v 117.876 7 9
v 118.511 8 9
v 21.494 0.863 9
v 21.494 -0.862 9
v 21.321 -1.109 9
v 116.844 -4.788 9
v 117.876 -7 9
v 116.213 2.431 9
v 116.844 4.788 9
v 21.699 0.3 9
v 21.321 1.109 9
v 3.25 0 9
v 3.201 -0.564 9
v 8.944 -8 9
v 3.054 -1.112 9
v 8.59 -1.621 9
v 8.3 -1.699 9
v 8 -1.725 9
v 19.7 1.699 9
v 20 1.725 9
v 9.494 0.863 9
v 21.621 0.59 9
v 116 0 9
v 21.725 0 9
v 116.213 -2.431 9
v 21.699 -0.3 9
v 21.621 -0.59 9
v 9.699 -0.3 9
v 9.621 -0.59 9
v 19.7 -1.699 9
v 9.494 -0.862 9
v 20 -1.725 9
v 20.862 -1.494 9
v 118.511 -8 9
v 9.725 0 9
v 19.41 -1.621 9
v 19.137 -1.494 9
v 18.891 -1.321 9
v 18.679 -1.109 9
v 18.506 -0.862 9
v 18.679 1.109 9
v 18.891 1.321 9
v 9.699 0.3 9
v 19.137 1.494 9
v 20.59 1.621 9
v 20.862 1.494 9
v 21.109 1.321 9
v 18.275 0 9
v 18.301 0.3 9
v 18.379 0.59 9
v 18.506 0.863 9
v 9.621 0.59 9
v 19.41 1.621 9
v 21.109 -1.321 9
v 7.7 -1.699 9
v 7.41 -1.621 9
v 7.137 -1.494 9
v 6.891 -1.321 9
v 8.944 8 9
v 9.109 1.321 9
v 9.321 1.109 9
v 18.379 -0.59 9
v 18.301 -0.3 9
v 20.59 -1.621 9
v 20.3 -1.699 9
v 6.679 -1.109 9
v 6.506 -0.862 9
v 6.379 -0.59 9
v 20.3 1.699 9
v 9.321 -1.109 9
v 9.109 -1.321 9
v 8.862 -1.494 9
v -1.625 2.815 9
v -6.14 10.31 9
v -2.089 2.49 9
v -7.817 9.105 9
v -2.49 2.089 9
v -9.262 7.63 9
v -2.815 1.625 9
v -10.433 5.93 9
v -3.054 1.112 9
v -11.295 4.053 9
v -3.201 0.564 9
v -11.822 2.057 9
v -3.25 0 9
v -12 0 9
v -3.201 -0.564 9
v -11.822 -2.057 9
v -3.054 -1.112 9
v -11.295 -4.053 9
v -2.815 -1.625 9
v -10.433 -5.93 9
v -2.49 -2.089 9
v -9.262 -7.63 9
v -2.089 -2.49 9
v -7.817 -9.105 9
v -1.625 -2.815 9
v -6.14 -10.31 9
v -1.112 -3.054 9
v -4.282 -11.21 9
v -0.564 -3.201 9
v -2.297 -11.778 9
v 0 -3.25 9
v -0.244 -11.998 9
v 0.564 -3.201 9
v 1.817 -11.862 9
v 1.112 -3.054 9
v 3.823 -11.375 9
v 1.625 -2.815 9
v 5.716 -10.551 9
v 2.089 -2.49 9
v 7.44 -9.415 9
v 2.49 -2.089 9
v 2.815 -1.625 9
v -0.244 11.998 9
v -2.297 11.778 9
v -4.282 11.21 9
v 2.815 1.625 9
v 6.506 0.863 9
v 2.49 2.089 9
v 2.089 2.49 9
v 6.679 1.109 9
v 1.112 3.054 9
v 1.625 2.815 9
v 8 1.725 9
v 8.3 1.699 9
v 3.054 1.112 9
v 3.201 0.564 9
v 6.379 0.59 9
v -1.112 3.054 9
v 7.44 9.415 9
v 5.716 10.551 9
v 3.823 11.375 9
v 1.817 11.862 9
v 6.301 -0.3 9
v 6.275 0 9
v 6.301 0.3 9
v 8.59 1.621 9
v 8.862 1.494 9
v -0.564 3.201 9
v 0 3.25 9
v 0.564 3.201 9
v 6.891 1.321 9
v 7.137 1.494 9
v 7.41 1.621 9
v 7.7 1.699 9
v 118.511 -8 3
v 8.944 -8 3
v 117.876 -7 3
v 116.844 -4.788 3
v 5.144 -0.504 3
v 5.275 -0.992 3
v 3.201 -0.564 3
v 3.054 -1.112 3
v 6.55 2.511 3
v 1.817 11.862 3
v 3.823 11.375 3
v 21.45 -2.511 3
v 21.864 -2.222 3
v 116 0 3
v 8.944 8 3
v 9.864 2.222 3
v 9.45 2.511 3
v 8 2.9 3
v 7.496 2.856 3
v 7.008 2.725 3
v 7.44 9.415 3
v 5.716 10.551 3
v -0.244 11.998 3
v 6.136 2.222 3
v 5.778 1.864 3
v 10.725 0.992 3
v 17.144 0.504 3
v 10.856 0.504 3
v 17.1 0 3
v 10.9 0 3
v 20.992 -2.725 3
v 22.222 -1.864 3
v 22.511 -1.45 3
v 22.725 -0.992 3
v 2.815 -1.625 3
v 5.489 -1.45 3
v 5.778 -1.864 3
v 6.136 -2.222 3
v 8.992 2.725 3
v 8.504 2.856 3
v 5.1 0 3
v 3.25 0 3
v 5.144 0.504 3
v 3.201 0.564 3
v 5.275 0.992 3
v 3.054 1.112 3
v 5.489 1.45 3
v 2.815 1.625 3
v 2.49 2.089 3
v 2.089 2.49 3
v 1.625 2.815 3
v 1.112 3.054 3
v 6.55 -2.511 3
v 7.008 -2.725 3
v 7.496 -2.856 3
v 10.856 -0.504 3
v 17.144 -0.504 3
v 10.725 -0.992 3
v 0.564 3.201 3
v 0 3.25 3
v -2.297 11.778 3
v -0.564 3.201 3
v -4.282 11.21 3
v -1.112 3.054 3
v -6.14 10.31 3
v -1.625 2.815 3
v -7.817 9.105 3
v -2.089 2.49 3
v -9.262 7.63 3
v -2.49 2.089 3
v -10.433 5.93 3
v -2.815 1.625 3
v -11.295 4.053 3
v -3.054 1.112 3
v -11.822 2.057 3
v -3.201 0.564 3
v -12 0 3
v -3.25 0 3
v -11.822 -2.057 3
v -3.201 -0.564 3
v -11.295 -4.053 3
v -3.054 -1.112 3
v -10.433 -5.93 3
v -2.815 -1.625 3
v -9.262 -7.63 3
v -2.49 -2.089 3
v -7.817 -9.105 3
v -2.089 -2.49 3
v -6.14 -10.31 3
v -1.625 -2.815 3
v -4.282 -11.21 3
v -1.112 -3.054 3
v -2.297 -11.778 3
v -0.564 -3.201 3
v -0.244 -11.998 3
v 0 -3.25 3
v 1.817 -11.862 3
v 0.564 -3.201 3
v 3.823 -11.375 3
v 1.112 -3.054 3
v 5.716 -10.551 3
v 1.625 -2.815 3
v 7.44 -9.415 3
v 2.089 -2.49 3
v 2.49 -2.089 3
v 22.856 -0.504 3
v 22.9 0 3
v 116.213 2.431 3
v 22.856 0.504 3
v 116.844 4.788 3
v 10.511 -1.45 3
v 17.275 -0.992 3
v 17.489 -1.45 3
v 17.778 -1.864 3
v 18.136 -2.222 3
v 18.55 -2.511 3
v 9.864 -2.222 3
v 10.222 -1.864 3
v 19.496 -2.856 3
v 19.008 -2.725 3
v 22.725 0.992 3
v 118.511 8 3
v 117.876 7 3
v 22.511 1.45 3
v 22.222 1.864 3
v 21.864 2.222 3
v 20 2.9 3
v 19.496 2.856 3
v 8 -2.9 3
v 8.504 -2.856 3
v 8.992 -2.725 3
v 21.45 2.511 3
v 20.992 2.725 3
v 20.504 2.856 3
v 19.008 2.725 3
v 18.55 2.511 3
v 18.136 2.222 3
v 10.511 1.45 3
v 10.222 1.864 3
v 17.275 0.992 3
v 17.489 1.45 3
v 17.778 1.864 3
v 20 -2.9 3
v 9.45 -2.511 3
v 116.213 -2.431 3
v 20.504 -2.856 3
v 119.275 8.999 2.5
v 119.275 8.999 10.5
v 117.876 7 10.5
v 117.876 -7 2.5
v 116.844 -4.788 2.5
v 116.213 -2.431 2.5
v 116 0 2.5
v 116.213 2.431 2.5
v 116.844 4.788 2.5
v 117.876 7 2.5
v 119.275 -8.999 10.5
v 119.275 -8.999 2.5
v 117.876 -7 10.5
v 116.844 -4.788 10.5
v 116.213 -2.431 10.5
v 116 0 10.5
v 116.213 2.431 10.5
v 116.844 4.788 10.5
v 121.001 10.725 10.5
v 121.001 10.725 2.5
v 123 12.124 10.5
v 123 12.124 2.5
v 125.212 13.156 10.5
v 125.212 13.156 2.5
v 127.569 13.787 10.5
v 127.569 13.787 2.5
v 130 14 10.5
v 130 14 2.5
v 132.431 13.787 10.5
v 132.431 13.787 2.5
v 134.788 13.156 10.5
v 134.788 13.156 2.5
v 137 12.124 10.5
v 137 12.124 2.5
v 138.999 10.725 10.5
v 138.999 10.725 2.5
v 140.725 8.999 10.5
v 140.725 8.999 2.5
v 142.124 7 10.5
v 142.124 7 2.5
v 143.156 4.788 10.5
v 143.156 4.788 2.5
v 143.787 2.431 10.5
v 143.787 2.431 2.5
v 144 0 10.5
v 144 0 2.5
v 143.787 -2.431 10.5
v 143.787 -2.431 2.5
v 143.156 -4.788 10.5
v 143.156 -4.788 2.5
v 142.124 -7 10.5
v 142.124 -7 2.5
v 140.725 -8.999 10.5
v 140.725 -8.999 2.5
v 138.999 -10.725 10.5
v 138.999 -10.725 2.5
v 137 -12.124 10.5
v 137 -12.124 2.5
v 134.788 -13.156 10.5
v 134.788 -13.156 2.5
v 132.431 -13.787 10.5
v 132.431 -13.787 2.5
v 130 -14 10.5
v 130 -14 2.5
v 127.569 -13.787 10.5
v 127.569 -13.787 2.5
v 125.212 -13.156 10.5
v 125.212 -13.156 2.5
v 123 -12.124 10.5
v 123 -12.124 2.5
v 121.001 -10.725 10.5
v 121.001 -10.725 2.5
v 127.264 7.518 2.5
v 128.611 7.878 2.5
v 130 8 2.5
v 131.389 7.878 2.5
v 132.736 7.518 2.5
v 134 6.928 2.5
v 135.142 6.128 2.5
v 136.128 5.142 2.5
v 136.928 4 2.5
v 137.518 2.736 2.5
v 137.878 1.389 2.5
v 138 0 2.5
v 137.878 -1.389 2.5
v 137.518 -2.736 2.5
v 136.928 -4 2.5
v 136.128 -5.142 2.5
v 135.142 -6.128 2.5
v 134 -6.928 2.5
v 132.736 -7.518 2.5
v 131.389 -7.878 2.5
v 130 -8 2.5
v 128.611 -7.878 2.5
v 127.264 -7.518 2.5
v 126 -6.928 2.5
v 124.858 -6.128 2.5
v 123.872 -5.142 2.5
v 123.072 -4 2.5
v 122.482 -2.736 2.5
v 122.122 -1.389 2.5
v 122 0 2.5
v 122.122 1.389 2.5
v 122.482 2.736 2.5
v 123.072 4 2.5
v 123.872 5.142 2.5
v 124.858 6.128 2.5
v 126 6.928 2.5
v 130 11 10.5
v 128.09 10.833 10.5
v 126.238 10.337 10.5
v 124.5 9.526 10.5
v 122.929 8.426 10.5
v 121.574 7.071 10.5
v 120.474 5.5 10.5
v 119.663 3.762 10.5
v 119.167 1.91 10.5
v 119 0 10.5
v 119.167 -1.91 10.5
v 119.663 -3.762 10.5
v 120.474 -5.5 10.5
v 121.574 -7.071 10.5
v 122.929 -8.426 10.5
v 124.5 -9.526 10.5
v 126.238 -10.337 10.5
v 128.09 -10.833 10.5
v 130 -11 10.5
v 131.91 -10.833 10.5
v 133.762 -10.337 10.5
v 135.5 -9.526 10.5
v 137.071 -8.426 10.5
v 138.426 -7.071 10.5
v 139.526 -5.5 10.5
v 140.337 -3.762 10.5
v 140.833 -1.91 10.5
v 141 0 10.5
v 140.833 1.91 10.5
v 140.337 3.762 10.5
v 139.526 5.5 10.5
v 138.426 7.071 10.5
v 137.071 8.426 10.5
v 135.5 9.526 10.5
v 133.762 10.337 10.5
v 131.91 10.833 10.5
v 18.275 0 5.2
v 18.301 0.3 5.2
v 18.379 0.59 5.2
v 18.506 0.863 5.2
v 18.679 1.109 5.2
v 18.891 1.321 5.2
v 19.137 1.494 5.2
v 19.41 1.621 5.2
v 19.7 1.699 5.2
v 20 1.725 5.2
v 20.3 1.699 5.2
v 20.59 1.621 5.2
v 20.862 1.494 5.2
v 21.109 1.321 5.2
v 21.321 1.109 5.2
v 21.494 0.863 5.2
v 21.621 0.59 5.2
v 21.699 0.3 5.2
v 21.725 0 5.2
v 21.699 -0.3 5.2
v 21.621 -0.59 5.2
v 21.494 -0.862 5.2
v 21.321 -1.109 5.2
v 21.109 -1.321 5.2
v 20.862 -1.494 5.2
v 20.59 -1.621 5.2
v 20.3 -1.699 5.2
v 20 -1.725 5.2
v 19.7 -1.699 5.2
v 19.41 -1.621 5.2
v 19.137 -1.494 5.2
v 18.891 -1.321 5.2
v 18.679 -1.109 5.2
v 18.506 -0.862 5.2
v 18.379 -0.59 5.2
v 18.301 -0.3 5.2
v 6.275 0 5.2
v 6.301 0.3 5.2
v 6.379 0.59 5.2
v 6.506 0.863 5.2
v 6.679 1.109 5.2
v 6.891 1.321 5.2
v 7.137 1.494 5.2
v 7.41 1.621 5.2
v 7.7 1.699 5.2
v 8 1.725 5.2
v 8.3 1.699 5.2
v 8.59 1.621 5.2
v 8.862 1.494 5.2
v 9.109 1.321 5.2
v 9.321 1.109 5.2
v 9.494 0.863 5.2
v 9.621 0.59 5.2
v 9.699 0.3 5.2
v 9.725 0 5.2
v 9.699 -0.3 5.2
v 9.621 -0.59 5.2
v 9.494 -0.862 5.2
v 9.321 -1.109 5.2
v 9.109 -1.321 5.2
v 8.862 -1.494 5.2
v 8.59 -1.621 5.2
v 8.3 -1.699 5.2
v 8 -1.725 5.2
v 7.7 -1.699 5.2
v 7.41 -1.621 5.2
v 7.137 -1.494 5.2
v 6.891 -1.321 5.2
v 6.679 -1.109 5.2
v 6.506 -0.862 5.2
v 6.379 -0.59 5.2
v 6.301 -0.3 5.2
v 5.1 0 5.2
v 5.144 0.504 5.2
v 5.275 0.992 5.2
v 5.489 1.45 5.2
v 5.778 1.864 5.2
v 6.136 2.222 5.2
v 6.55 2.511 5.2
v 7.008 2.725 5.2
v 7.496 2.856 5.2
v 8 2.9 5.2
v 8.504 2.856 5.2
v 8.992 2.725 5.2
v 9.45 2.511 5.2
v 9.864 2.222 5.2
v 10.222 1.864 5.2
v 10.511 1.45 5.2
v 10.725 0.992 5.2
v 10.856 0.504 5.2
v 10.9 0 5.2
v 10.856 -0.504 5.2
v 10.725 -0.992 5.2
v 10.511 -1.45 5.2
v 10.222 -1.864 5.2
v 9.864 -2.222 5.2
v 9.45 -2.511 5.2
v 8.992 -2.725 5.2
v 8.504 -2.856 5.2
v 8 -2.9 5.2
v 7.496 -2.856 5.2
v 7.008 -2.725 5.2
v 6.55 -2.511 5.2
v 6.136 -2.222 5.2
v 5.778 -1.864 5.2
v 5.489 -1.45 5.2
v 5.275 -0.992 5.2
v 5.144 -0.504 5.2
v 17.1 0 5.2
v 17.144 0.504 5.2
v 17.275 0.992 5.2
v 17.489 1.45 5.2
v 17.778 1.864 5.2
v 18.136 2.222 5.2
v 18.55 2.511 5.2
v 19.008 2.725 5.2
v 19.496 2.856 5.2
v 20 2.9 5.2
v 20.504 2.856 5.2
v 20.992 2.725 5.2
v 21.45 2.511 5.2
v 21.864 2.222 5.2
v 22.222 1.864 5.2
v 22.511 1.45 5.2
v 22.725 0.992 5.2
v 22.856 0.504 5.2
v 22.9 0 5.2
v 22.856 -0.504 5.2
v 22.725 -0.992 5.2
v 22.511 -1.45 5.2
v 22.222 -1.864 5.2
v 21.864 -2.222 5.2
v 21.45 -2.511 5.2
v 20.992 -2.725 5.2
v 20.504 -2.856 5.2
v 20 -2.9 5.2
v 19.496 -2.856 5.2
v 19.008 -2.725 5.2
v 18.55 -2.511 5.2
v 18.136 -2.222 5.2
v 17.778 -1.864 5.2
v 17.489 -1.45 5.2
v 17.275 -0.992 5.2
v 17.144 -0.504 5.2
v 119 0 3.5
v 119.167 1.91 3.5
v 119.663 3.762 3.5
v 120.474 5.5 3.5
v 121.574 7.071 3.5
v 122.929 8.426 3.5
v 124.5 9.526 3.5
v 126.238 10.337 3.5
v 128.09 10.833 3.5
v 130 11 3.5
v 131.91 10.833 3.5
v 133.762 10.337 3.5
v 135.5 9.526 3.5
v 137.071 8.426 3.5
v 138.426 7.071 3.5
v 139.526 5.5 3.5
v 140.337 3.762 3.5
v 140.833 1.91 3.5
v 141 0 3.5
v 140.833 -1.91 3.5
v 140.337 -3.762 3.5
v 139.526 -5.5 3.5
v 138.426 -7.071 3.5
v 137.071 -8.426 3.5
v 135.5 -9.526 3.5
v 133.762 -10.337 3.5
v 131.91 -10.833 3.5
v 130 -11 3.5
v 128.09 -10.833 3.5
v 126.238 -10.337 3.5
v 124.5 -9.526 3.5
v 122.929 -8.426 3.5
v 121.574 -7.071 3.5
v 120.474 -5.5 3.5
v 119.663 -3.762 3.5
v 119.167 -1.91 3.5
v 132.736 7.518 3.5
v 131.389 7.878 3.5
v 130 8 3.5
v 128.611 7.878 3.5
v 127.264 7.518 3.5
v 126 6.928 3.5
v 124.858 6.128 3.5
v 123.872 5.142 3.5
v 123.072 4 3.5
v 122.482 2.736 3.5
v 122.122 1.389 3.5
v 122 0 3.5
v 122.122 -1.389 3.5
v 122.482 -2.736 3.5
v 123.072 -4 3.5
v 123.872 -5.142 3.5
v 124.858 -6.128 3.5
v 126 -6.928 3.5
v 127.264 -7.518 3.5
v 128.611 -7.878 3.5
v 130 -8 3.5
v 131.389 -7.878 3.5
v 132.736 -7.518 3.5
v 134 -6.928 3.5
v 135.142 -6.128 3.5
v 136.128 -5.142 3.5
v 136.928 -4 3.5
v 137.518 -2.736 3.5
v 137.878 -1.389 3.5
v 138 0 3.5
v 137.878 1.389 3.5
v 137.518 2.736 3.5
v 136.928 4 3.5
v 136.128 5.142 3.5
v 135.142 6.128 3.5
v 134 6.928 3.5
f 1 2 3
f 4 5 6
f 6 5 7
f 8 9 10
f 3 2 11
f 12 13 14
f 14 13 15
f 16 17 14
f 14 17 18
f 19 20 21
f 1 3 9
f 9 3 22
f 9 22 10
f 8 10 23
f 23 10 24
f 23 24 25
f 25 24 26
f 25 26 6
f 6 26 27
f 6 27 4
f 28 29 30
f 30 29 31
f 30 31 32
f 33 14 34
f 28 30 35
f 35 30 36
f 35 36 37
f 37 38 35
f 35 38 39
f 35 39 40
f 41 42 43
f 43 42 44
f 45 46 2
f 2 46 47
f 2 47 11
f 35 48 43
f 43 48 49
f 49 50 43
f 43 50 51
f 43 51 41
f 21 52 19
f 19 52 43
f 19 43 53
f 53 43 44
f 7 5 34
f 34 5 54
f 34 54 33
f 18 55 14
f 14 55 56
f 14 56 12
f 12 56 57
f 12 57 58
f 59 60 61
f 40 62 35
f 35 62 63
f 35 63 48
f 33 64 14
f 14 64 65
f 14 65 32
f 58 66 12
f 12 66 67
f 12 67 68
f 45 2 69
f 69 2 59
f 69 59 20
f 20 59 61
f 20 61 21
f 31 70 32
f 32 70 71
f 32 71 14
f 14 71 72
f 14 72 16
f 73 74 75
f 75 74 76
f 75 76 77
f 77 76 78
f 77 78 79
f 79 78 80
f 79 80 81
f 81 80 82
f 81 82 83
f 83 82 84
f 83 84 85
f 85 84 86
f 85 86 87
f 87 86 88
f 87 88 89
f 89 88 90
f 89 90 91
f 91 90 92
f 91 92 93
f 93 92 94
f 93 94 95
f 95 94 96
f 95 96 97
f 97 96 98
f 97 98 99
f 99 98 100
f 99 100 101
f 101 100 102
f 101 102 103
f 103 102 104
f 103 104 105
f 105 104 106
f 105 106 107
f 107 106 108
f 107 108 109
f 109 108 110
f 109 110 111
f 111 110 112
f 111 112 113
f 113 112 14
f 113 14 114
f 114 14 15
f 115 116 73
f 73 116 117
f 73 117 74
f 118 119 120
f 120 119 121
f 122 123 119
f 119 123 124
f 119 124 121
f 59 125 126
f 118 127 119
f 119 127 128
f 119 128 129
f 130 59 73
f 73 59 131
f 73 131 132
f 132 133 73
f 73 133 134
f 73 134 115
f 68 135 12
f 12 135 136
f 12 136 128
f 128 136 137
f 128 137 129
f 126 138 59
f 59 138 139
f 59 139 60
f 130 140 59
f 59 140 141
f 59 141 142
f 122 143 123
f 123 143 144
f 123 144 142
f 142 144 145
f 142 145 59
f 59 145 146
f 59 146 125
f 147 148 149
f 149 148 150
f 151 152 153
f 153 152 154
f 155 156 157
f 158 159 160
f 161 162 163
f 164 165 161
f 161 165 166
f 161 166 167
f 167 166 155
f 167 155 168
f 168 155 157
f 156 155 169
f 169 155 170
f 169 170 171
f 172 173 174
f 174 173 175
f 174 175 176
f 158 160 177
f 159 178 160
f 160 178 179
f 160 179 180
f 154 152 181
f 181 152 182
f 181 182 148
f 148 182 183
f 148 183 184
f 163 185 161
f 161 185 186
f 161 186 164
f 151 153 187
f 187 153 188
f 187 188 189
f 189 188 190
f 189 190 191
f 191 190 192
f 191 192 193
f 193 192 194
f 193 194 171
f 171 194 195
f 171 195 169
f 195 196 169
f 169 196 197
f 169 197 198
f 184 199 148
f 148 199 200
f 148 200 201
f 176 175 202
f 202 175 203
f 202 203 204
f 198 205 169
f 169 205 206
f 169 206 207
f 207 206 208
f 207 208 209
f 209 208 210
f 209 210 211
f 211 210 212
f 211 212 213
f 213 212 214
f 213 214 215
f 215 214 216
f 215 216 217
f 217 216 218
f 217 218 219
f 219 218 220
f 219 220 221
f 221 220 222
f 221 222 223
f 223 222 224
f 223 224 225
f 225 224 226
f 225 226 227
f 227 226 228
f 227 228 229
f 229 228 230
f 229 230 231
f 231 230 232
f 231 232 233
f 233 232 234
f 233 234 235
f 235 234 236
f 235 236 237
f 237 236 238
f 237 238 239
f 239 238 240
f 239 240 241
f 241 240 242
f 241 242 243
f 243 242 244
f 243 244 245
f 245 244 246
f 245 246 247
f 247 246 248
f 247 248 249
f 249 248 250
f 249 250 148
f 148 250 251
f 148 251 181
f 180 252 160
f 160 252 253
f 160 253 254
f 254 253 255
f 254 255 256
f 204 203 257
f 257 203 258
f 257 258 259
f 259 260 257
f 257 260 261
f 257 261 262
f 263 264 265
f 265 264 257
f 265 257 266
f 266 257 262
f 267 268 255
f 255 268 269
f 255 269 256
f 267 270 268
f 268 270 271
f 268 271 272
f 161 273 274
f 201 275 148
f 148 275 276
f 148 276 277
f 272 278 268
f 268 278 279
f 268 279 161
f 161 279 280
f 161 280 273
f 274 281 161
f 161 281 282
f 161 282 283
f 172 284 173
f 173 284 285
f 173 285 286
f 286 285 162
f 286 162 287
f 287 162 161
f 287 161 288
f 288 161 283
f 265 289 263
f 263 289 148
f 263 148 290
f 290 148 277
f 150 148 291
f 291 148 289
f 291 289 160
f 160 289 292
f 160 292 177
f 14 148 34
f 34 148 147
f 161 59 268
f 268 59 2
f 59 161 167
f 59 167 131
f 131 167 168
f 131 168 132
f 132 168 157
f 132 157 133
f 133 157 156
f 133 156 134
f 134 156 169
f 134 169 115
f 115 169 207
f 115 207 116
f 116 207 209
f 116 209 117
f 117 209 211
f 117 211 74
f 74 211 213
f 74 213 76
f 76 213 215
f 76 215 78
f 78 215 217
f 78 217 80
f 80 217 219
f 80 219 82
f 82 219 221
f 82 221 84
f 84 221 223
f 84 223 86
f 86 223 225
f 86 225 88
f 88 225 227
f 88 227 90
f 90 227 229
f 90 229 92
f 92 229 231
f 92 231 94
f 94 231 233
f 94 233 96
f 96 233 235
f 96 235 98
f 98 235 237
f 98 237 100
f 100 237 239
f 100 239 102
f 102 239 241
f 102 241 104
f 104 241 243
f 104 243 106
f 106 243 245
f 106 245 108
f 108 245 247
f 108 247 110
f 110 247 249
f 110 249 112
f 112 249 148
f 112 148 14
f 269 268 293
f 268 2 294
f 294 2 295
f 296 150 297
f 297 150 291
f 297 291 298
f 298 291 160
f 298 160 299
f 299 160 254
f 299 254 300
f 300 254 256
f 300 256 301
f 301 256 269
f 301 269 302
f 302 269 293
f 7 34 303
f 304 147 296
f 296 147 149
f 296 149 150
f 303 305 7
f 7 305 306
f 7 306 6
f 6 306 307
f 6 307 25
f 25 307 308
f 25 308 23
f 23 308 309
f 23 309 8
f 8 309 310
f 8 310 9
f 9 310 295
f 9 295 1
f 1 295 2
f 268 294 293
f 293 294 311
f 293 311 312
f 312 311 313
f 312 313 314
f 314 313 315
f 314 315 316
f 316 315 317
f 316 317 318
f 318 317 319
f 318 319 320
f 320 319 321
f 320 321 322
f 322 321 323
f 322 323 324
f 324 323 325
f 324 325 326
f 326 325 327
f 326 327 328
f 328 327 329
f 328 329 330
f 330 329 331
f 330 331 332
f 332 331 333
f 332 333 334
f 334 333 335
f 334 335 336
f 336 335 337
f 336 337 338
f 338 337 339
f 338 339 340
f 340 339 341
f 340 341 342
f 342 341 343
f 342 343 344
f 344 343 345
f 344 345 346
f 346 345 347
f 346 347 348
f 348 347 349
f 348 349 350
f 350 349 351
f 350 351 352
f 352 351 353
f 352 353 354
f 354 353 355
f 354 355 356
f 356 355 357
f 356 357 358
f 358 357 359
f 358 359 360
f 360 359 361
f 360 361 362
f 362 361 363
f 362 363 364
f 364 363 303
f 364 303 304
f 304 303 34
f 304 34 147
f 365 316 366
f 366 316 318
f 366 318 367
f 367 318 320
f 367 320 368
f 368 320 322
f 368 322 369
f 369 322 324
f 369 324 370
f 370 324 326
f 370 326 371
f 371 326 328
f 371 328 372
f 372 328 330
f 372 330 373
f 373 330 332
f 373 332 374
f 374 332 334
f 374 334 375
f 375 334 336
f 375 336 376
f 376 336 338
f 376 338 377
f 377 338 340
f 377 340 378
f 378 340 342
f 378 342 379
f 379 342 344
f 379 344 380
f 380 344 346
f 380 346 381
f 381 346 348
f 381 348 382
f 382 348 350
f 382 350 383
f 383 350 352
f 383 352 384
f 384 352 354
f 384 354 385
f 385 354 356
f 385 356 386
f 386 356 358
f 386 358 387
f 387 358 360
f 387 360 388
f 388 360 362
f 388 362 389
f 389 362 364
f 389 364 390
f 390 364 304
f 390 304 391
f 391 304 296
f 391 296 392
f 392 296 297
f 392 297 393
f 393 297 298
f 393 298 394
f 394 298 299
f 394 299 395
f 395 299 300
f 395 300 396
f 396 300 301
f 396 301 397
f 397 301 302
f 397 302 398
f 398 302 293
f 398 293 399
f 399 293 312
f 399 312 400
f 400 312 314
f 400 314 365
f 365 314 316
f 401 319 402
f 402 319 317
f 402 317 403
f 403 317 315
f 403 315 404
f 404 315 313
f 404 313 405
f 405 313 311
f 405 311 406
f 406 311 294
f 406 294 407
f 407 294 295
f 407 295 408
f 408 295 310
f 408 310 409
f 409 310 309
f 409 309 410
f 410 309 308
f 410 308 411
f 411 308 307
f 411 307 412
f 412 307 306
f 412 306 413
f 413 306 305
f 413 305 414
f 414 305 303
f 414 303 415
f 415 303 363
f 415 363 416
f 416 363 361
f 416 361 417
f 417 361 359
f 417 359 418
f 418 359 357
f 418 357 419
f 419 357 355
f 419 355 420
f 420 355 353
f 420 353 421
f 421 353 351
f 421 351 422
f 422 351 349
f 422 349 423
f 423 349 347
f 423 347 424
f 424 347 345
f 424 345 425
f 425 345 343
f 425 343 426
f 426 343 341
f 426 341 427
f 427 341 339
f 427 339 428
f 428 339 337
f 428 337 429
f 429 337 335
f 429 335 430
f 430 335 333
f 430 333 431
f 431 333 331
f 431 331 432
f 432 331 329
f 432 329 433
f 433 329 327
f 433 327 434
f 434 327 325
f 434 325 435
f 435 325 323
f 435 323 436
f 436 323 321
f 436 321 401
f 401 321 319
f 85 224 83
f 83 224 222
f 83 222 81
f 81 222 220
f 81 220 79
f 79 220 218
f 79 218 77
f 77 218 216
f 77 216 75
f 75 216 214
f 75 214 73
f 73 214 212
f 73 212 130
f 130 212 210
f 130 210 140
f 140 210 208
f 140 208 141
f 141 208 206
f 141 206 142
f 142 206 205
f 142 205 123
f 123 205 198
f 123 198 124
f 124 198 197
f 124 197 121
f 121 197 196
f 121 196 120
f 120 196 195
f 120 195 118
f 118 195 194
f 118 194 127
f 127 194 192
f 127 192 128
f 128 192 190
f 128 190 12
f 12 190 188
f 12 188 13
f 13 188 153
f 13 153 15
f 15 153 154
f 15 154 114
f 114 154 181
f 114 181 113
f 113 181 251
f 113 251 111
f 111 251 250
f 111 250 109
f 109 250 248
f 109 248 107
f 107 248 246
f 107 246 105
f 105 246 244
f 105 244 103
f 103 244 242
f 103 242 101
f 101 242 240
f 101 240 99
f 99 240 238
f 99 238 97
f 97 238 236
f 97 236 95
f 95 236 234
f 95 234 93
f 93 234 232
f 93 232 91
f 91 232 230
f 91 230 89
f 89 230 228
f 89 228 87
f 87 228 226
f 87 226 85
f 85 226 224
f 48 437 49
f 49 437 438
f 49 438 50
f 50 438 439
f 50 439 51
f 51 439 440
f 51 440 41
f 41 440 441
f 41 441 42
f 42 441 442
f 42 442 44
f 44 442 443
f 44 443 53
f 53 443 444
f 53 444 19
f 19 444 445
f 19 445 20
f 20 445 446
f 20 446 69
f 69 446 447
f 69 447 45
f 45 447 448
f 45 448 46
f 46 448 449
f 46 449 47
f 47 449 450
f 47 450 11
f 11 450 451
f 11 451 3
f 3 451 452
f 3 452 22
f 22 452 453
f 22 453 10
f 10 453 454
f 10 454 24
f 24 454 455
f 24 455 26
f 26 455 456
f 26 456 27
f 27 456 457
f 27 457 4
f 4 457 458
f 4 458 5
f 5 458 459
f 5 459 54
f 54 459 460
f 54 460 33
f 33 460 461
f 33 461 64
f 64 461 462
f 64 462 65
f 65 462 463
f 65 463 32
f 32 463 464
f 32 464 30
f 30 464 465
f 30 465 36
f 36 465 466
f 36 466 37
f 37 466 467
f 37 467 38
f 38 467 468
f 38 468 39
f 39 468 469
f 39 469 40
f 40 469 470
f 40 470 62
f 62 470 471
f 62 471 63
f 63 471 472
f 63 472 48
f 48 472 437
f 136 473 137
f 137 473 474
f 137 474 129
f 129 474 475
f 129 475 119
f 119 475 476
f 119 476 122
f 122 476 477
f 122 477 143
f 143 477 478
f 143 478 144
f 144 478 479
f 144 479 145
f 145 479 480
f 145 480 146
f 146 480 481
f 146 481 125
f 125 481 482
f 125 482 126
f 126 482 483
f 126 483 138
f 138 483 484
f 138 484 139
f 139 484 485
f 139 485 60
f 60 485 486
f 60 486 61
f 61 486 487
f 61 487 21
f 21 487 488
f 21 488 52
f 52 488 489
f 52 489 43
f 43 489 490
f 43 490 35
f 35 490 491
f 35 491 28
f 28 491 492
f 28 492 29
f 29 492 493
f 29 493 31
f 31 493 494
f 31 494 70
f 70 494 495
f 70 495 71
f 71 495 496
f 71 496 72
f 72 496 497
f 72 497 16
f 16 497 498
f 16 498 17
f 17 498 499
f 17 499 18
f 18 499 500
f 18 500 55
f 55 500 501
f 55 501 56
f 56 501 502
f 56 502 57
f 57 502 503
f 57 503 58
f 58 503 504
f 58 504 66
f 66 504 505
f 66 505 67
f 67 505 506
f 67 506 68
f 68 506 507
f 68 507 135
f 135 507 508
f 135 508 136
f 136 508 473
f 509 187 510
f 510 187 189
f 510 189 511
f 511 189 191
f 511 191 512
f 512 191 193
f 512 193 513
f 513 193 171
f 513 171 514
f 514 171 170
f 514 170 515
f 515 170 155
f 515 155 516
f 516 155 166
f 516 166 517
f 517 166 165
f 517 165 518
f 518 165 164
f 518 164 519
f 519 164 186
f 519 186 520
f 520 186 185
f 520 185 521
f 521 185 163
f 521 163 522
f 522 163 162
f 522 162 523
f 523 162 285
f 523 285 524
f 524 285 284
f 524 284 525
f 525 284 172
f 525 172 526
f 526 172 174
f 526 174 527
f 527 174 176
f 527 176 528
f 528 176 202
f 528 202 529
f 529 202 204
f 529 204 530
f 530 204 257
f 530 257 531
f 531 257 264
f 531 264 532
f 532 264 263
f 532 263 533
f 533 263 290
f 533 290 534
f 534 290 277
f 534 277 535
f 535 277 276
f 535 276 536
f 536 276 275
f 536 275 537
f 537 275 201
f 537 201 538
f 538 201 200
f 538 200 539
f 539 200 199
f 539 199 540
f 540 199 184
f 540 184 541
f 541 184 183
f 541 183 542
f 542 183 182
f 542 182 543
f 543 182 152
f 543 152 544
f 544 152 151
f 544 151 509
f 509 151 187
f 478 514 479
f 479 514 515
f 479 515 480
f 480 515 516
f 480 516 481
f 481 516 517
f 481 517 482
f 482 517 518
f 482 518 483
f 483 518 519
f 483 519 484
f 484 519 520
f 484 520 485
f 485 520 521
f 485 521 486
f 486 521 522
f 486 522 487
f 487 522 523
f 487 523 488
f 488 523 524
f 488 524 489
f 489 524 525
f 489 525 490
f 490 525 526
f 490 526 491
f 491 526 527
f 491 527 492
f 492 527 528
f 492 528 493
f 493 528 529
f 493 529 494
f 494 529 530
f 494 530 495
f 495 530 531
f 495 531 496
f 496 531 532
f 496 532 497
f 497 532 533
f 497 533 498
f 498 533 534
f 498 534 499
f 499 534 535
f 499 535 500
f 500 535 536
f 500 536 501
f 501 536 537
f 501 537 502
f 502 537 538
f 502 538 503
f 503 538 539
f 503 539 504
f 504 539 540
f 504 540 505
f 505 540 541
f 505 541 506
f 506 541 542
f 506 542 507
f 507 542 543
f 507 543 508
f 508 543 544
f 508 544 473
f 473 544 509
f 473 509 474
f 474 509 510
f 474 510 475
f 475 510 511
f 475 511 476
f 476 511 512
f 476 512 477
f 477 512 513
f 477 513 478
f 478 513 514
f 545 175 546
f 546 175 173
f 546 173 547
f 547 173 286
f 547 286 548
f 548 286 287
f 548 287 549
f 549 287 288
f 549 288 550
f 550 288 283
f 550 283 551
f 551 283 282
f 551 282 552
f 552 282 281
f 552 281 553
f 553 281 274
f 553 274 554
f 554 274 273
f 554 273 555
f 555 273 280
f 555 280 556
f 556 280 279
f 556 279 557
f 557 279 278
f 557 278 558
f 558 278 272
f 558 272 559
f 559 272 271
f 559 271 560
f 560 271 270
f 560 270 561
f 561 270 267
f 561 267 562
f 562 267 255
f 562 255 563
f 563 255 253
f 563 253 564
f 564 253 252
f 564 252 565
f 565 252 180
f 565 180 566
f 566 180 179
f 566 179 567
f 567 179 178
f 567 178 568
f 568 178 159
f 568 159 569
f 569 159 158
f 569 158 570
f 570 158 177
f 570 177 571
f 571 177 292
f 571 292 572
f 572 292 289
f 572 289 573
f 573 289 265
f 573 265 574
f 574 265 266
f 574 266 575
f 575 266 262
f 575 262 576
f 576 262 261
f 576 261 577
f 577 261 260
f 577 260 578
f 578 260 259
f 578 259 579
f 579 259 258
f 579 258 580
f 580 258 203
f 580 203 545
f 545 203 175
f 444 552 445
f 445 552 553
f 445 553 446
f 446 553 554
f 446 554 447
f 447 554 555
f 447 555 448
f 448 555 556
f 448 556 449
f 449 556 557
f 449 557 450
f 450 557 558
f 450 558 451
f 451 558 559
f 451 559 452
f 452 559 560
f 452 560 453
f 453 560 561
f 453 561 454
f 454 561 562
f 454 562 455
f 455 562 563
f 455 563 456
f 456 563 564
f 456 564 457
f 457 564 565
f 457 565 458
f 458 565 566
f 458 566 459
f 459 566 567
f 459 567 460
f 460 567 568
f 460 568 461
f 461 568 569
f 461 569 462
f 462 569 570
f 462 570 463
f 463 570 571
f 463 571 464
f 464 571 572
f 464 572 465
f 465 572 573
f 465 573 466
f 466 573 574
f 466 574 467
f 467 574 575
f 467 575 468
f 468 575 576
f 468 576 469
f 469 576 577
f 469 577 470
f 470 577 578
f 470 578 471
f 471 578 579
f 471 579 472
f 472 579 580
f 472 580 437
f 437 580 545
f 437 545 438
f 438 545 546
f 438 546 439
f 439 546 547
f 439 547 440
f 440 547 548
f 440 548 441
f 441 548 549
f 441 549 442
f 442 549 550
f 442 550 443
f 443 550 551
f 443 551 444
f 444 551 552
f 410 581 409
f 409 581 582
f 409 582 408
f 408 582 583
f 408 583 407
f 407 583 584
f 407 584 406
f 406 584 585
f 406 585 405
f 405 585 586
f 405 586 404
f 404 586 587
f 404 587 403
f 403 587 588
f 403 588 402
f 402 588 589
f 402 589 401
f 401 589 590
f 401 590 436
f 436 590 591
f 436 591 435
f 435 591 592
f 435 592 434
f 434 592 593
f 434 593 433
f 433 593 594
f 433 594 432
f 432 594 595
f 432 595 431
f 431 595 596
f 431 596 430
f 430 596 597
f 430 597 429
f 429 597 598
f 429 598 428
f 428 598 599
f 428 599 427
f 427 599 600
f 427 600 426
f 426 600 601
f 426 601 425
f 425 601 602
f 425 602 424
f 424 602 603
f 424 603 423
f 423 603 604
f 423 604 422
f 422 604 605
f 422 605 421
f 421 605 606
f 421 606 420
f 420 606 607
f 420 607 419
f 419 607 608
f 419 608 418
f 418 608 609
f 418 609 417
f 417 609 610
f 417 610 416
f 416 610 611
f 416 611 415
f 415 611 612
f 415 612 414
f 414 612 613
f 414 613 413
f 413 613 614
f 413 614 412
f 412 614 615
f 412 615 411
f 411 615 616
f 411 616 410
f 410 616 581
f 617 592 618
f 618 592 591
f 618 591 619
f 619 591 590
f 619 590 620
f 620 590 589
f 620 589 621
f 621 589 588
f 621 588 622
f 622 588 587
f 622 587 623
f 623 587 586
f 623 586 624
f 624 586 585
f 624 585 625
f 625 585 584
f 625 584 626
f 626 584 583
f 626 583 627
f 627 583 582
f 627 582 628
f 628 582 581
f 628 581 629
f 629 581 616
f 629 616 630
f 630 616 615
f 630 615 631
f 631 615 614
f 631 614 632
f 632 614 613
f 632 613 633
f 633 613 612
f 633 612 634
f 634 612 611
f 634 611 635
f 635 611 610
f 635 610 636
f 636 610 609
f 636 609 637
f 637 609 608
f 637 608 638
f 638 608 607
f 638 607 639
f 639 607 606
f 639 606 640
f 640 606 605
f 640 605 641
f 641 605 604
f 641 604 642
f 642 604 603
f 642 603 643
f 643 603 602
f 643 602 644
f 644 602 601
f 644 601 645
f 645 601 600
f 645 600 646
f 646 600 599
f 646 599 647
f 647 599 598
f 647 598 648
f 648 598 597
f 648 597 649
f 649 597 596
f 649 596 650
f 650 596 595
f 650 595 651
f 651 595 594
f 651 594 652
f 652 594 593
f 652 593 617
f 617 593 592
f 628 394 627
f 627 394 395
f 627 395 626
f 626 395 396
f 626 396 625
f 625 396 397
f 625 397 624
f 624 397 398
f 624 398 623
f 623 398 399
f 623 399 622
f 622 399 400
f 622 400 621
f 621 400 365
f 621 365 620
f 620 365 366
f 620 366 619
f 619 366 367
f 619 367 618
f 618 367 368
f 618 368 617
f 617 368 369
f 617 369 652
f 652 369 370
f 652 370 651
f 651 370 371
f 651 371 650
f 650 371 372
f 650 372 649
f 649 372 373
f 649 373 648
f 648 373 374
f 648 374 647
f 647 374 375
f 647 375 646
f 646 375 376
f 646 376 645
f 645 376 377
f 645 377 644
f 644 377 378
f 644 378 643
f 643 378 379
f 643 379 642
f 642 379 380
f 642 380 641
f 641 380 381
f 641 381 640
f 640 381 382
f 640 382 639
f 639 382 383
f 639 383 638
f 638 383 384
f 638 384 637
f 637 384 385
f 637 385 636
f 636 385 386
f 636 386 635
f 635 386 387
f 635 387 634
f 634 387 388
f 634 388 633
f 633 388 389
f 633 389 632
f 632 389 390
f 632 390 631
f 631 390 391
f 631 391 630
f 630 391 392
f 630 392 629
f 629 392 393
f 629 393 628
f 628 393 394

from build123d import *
from build123d.topology import SkipClean

# Parameters (mm, degrees)
BOSS_EXTRUDE1_START     = 3
SKETCH1_W               = 130
SKETCH1_H               = 16
BOSS_EXTRUDE1_DEPTH     = 6
BOSS_EXTRUDE2_START     = 3
SKETCH2_R               = 12
BOSS_EXTRUDE2_DEPTH     = 6
BOSS_EXTRUDE3_START     = 3
SKETCH3_R               = 14
BOSS_EXTRUDE3_DEPTH     = 6
BOSS_EXTRUDE4_START     = 2.5
SKETCH4_R               = 14
BOSS_EXTRUDE4_DEPTH     = 8
CUT_EXTRUDE1_DEPTH      = 146.059470563
CUT_EXTRUDE1_DEPTH_BACK = 146.059470563
SKETCH5_R               = 3.25
CUT_EXTRUDE2_DEPTH      = 146.059470563
CUT_EXTRUDE2_DEPTH_BACK = 146.059470563
SKETCH6_R               = 1.725
CUT_EXTRUDE3_START      = 3
SKETCH7_R               = 2.9
CUT_EXTRUDE3_DEPTH      = 2.2
CUT_EXTRUDE4_START      = 3
SKETCH8_R               = 2.9
CUT_EXTRUDE4_DEPTH      = 2.2
CUT_EXTRUDE5_START      = 3.5
SKETCH9_R               = 11
CUT_EXTRUDE5_DEPTH      = 7
CUT_EXTRUDE6_DEPTH      = 146.059470563
CUT_EXTRUDE6_DEPTH_BACK = 146.059470563
SKETCH10_R              = 8


with BuildPart() as part:
    # Sketch1 → Boss-Extrude1 (new body)
    with BuildSketch(Plane.XY.offset(BOSS_EXTRUDE1_START)):
        with Locations((65, 0)):
            Rectangle(SKETCH1_W, SKETCH1_H)
    extrude(amount=BOSS_EXTRUDE1_DEPTH)

    # Sketch2 → Boss-Extrude2 (add)
    with BuildSketch(Plane.XY.offset(BOSS_EXTRUDE2_START)):
        Circle(SKETCH2_R)
    extrude(amount=BOSS_EXTRUDE2_DEPTH)

    # Sketch3 → Boss-Extrude3 (add)
    with BuildSketch(Plane.XY.offset(BOSS_EXTRUDE3_START)):
        with Locations((130, 0)):
            Circle(SKETCH3_R)
    extrude(amount=BOSS_EXTRUDE3_DEPTH)

    # Sketch4 → Boss-Extrude4 (add)
    with SkipClean():  # the faces are left unmerged after this step: merging them gives an invalid solid
        with BuildSketch(Plane.XY.offset(BOSS_EXTRUDE4_START)):
            with Locations((130, 0)):
                Circle(SKETCH4_R)
        extrude(amount=BOSS_EXTRUDE4_DEPTH)
    add(part.part.scale(1), mode=Mode.REPLACE)  # the faces are merged on a copy

    # Sketch5 → Cut-Extrude1 (cut, two sides: drawn at the far end of the back side and taken through both)
    with BuildSketch(Plane.XY.offset(-CUT_EXTRUDE1_DEPTH_BACK)):
        Circle(SKETCH5_R)
    extrude(amount=CUT_EXTRUDE1_DEPTH + CUT_EXTRUDE1_DEPTH_BACK, mode=Mode.SUBTRACT)

    # Sketch6 → Cut-Extrude2 (cut, two sides: drawn at the far end of the back side and taken through both)
    with BuildSketch(Plane.XY.offset(-CUT_EXTRUDE2_DEPTH_BACK)):
        with Locations((8, 0)):
            Circle(SKETCH6_R)
        with Locations((20, 0)):
            Circle(SKETCH6_R)
    extrude(amount=CUT_EXTRUDE2_DEPTH + CUT_EXTRUDE2_DEPTH_BACK, mode=Mode.SUBTRACT)

    # Sketch7 → Cut-Extrude3 (cut)
    with BuildSketch(Plane.XY.offset(CUT_EXTRUDE3_START)):
        with Locations((8, 0)):
            Circle(SKETCH7_R)
    extrude(amount=CUT_EXTRUDE3_DEPTH, mode=Mode.SUBTRACT)

    # Sketch8 → Cut-Extrude4 (cut)
    with BuildSketch(Plane.XY.offset(CUT_EXTRUDE4_START)):
        with Locations((20, 0)):
            Circle(SKETCH8_R)
    extrude(amount=CUT_EXTRUDE4_DEPTH, mode=Mode.SUBTRACT)

    # Sketch9 → Cut-Extrude5 (cut)
    with BuildSketch(Plane.XY.offset(CUT_EXTRUDE5_START)):
        with Locations((130, 0)):
            Circle(SKETCH9_R)
    extrude(amount=CUT_EXTRUDE5_DEPTH, mode=Mode.SUBTRACT)

    # Sketch10 → Cut-Extrude6 (cut, two sides: drawn at the far end of the back side and taken through both)
    with BuildSketch(Plane.XY.offset(-CUT_EXTRUDE6_DEPTH_BACK)):
        with Locations((130, 0)):
            Circle(SKETCH10_R)
    extrude(amount=CUT_EXTRUDE6_DEPTH + CUT_EXTRUDE6_DEPTH_BACK, mode=Mode.SUBTRACT)


solid = part.part
